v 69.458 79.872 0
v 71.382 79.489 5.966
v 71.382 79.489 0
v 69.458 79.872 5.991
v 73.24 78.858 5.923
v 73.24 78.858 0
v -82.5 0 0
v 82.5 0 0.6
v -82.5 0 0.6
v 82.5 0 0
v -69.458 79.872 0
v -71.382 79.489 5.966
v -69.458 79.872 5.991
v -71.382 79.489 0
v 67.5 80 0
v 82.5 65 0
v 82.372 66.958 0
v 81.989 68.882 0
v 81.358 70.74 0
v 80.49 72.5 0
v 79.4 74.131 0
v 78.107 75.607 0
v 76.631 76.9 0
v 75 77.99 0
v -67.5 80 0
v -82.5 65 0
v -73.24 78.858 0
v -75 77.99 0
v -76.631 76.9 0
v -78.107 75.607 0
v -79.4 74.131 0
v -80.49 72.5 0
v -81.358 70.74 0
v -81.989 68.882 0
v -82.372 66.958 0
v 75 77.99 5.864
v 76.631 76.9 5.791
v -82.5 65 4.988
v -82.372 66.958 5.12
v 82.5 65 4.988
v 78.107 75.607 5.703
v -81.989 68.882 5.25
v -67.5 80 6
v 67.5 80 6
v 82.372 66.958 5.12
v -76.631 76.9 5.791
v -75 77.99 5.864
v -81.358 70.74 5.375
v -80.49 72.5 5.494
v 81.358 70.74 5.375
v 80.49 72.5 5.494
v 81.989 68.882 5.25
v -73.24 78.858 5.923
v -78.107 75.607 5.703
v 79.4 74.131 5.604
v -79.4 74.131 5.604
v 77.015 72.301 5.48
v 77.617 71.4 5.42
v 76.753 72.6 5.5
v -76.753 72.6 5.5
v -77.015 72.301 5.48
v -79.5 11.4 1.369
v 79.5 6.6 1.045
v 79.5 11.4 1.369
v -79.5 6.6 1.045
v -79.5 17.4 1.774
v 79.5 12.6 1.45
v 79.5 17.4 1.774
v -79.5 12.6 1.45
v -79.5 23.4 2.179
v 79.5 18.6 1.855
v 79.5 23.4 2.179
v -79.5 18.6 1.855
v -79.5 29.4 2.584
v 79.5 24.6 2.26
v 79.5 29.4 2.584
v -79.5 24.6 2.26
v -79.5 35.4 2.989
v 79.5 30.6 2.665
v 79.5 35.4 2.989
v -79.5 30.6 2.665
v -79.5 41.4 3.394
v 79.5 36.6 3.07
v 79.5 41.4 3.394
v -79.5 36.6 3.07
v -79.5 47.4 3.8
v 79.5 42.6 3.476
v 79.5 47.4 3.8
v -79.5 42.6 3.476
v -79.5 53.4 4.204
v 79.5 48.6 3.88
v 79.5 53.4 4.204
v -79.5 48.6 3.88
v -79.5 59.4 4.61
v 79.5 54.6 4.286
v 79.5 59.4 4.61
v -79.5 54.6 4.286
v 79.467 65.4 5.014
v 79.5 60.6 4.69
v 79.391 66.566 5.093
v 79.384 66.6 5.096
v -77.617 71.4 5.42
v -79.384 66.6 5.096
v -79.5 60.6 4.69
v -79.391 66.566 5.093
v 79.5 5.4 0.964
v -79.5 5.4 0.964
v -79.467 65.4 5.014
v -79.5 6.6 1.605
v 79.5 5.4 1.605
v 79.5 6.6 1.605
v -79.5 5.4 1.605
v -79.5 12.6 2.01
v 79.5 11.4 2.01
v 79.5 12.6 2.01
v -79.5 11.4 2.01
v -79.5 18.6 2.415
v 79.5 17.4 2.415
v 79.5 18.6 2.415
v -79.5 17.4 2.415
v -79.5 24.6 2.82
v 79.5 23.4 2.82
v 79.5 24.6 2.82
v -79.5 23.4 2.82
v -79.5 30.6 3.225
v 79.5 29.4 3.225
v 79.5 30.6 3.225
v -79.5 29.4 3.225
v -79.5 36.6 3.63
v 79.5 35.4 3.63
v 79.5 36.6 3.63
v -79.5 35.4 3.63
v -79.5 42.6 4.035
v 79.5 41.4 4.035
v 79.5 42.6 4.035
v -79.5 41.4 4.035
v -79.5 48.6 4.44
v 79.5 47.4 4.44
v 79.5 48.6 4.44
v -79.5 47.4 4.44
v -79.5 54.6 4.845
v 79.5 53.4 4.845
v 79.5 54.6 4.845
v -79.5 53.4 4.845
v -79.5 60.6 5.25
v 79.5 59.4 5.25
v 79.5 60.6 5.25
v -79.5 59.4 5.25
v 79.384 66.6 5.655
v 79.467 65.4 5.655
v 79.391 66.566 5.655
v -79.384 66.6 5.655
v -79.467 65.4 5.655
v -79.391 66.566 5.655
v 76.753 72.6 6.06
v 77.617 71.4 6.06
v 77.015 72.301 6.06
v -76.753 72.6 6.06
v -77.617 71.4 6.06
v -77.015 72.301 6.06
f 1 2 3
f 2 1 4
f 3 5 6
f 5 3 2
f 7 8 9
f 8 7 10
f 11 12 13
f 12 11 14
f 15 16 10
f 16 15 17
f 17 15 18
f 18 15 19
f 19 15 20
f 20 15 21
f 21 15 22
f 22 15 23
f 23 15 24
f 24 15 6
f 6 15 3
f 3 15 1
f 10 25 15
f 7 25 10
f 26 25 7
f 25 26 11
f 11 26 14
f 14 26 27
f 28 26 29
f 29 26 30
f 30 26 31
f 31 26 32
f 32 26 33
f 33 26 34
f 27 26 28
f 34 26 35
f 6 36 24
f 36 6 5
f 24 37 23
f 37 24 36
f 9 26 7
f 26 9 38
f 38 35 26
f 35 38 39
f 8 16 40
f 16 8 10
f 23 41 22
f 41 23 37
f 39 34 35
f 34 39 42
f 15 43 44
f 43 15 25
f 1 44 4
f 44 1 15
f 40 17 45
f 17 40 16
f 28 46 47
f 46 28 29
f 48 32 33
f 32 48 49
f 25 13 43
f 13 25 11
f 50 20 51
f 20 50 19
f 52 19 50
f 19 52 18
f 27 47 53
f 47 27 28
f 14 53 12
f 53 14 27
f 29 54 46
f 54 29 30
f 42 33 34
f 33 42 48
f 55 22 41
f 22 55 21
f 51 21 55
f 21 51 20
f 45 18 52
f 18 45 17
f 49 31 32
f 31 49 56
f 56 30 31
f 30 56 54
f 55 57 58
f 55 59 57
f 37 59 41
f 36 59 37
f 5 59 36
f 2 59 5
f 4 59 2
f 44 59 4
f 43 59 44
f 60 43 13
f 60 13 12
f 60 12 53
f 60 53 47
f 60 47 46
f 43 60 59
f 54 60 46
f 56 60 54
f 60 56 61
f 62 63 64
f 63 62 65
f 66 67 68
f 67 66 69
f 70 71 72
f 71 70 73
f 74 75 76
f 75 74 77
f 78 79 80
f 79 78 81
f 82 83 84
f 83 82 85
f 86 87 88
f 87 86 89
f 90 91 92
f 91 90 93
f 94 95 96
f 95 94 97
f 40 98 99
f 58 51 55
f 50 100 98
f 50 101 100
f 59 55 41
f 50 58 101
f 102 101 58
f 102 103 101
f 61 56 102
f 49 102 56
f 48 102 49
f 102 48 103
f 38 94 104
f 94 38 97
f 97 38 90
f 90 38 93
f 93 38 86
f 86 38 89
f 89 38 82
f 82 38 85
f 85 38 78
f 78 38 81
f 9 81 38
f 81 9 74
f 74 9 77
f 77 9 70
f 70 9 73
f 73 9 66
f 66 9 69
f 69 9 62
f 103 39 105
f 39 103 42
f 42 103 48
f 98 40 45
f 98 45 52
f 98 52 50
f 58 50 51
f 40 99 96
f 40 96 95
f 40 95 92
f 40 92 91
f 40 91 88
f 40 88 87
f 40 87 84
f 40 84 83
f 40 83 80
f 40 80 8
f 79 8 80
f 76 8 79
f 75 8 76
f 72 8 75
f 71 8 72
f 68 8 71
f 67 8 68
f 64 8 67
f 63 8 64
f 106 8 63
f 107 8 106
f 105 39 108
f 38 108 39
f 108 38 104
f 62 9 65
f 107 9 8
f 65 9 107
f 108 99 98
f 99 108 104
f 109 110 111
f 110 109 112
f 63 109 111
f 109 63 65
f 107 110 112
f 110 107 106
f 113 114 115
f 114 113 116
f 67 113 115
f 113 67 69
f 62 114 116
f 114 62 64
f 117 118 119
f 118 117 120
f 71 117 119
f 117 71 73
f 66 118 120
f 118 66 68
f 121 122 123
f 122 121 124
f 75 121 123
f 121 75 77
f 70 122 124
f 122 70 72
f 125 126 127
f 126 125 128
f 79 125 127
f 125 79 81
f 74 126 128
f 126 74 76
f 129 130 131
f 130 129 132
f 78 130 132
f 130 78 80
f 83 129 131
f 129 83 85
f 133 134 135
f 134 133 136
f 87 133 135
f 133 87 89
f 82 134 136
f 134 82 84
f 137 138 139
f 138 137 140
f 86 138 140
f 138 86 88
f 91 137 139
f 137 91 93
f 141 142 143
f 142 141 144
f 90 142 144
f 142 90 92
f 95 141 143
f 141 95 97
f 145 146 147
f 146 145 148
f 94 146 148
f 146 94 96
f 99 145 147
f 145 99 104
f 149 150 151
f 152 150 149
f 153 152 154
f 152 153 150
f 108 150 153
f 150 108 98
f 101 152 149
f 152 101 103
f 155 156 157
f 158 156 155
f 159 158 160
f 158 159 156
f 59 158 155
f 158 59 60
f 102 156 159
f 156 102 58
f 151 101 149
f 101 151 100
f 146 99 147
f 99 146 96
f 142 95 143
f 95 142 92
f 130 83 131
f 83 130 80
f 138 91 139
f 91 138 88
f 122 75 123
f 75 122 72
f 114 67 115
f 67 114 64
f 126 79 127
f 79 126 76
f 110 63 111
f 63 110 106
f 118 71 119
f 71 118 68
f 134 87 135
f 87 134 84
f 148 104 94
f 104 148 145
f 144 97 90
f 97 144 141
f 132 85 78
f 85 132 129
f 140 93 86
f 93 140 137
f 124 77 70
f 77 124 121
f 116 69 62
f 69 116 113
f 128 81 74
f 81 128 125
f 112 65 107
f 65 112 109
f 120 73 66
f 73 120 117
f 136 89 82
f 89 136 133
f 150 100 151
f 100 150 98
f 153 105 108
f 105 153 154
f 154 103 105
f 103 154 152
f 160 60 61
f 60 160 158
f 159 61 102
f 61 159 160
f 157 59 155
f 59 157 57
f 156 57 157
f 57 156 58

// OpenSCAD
// Dock approach ramp (2026-11-01, Enoch's idea): a printed wedge that butts
// against the front edge of the dock (the Eufy base) so Grover's tracks roll
// up a gentle slope instead of hitting the base's rounded lip - the lip made
// every climb lurch, yaw Grover 4-6 deg and land off the rollers.
//
// Measured (Enoch, 11-01): base front edge 165 mm wide, corners rounded in
// plan; its lowest (front) edge ~6 mm above the bench, rising to ~11 mm where
// the tracks ride (journal 10-24). Cliff sensors' lowest point 12 mm above
// the bench and 65 mm ahead of where the tracks touch the bench.
//
// Slope: before the tracks start to climb, a sensor 65 mm ahead sees the
// ramp rise by slope x 65 mm. Keeping >= 3 mm under it allows <= 9/65 (14 %).
// 6 mm over 80 mm is 7.5 %: ~7 mm of clearance at the worst point, and a
// gentle enough start that one track can't snatch the lip before the other.
//
// Frame: +y toward the dock (the ramp's high, butt end at y = ramp_l), x
// across, z up from the bench.
//
// Render: openscad -o dock-ramp.stl dock-ramp.scad
// Print:  flat (bottom on the bed), no supports, no brim. Tape it to the bench
//         with its butt end against the base's front edge.

ramp_w   = 165;    // = the base's front edge
ramp_l   = 80;
h_butt   = 6.0;    // the base's front edge height
h_toe    = 0.6;    // printable feather edge
corner_r = 15;     // butt-end corners rounded to follow the base's plan corners
rib_h    = 0.6;    // grip ribs across the slope (smooth PETG slips like paper)
rib_w    = 1.2;
rib_p    = 6;

$fn = 48;

function hz(y) = h_toe + (h_butt - h_toe) * y / ramp_l;

module outline() {
  // rounded corners at the butt end only
  hull() {
    translate([-ramp_w / 2, 0]) square([ramp_w, 1]);
    for (sx = [-1, 1]) translate([sx * (ramp_w / 2 - corner_r), ramp_l - corner_r]) circle(r = corner_r);
  }
}

module wedge() {
  intersection() {
    linear_extrude(h_butt + rib_h + 1) outline();
    // the slope: a prism under the plane z = hz(y)
    rotate([90, 0, 90]) translate([0, 0, -ramp_w]) linear_extrude(2 * ramp_w)
      polygon([[0, 0], [ramp_l, 0], [ramp_l, h_butt], [0, h_toe]]);
  }
}

module ribs() {
  intersection() {
    linear_extrude(h_butt + rib_h + 1) offset(delta = -3) outline();
    for (y = [rib_p : rib_p : ramp_l - rib_p])
      translate([-ramp_w / 2, y - rib_w / 2, 0])
        cube([ramp_w, rib_w, hz(y) + rib_h]);
  }
}

wedge();
ribs();

echo(str("dock ramp: ", ramp_w, " x ", ramp_l, ", ", h_toe, " -> ", h_butt, " mm (", round(1000 * (h_butt - h_toe) / ramp_l) / 10,
         " %); sensor clearance at the worst point ~", 12 - (h_butt - h_toe) / ramp_l * 65, " mm"));
